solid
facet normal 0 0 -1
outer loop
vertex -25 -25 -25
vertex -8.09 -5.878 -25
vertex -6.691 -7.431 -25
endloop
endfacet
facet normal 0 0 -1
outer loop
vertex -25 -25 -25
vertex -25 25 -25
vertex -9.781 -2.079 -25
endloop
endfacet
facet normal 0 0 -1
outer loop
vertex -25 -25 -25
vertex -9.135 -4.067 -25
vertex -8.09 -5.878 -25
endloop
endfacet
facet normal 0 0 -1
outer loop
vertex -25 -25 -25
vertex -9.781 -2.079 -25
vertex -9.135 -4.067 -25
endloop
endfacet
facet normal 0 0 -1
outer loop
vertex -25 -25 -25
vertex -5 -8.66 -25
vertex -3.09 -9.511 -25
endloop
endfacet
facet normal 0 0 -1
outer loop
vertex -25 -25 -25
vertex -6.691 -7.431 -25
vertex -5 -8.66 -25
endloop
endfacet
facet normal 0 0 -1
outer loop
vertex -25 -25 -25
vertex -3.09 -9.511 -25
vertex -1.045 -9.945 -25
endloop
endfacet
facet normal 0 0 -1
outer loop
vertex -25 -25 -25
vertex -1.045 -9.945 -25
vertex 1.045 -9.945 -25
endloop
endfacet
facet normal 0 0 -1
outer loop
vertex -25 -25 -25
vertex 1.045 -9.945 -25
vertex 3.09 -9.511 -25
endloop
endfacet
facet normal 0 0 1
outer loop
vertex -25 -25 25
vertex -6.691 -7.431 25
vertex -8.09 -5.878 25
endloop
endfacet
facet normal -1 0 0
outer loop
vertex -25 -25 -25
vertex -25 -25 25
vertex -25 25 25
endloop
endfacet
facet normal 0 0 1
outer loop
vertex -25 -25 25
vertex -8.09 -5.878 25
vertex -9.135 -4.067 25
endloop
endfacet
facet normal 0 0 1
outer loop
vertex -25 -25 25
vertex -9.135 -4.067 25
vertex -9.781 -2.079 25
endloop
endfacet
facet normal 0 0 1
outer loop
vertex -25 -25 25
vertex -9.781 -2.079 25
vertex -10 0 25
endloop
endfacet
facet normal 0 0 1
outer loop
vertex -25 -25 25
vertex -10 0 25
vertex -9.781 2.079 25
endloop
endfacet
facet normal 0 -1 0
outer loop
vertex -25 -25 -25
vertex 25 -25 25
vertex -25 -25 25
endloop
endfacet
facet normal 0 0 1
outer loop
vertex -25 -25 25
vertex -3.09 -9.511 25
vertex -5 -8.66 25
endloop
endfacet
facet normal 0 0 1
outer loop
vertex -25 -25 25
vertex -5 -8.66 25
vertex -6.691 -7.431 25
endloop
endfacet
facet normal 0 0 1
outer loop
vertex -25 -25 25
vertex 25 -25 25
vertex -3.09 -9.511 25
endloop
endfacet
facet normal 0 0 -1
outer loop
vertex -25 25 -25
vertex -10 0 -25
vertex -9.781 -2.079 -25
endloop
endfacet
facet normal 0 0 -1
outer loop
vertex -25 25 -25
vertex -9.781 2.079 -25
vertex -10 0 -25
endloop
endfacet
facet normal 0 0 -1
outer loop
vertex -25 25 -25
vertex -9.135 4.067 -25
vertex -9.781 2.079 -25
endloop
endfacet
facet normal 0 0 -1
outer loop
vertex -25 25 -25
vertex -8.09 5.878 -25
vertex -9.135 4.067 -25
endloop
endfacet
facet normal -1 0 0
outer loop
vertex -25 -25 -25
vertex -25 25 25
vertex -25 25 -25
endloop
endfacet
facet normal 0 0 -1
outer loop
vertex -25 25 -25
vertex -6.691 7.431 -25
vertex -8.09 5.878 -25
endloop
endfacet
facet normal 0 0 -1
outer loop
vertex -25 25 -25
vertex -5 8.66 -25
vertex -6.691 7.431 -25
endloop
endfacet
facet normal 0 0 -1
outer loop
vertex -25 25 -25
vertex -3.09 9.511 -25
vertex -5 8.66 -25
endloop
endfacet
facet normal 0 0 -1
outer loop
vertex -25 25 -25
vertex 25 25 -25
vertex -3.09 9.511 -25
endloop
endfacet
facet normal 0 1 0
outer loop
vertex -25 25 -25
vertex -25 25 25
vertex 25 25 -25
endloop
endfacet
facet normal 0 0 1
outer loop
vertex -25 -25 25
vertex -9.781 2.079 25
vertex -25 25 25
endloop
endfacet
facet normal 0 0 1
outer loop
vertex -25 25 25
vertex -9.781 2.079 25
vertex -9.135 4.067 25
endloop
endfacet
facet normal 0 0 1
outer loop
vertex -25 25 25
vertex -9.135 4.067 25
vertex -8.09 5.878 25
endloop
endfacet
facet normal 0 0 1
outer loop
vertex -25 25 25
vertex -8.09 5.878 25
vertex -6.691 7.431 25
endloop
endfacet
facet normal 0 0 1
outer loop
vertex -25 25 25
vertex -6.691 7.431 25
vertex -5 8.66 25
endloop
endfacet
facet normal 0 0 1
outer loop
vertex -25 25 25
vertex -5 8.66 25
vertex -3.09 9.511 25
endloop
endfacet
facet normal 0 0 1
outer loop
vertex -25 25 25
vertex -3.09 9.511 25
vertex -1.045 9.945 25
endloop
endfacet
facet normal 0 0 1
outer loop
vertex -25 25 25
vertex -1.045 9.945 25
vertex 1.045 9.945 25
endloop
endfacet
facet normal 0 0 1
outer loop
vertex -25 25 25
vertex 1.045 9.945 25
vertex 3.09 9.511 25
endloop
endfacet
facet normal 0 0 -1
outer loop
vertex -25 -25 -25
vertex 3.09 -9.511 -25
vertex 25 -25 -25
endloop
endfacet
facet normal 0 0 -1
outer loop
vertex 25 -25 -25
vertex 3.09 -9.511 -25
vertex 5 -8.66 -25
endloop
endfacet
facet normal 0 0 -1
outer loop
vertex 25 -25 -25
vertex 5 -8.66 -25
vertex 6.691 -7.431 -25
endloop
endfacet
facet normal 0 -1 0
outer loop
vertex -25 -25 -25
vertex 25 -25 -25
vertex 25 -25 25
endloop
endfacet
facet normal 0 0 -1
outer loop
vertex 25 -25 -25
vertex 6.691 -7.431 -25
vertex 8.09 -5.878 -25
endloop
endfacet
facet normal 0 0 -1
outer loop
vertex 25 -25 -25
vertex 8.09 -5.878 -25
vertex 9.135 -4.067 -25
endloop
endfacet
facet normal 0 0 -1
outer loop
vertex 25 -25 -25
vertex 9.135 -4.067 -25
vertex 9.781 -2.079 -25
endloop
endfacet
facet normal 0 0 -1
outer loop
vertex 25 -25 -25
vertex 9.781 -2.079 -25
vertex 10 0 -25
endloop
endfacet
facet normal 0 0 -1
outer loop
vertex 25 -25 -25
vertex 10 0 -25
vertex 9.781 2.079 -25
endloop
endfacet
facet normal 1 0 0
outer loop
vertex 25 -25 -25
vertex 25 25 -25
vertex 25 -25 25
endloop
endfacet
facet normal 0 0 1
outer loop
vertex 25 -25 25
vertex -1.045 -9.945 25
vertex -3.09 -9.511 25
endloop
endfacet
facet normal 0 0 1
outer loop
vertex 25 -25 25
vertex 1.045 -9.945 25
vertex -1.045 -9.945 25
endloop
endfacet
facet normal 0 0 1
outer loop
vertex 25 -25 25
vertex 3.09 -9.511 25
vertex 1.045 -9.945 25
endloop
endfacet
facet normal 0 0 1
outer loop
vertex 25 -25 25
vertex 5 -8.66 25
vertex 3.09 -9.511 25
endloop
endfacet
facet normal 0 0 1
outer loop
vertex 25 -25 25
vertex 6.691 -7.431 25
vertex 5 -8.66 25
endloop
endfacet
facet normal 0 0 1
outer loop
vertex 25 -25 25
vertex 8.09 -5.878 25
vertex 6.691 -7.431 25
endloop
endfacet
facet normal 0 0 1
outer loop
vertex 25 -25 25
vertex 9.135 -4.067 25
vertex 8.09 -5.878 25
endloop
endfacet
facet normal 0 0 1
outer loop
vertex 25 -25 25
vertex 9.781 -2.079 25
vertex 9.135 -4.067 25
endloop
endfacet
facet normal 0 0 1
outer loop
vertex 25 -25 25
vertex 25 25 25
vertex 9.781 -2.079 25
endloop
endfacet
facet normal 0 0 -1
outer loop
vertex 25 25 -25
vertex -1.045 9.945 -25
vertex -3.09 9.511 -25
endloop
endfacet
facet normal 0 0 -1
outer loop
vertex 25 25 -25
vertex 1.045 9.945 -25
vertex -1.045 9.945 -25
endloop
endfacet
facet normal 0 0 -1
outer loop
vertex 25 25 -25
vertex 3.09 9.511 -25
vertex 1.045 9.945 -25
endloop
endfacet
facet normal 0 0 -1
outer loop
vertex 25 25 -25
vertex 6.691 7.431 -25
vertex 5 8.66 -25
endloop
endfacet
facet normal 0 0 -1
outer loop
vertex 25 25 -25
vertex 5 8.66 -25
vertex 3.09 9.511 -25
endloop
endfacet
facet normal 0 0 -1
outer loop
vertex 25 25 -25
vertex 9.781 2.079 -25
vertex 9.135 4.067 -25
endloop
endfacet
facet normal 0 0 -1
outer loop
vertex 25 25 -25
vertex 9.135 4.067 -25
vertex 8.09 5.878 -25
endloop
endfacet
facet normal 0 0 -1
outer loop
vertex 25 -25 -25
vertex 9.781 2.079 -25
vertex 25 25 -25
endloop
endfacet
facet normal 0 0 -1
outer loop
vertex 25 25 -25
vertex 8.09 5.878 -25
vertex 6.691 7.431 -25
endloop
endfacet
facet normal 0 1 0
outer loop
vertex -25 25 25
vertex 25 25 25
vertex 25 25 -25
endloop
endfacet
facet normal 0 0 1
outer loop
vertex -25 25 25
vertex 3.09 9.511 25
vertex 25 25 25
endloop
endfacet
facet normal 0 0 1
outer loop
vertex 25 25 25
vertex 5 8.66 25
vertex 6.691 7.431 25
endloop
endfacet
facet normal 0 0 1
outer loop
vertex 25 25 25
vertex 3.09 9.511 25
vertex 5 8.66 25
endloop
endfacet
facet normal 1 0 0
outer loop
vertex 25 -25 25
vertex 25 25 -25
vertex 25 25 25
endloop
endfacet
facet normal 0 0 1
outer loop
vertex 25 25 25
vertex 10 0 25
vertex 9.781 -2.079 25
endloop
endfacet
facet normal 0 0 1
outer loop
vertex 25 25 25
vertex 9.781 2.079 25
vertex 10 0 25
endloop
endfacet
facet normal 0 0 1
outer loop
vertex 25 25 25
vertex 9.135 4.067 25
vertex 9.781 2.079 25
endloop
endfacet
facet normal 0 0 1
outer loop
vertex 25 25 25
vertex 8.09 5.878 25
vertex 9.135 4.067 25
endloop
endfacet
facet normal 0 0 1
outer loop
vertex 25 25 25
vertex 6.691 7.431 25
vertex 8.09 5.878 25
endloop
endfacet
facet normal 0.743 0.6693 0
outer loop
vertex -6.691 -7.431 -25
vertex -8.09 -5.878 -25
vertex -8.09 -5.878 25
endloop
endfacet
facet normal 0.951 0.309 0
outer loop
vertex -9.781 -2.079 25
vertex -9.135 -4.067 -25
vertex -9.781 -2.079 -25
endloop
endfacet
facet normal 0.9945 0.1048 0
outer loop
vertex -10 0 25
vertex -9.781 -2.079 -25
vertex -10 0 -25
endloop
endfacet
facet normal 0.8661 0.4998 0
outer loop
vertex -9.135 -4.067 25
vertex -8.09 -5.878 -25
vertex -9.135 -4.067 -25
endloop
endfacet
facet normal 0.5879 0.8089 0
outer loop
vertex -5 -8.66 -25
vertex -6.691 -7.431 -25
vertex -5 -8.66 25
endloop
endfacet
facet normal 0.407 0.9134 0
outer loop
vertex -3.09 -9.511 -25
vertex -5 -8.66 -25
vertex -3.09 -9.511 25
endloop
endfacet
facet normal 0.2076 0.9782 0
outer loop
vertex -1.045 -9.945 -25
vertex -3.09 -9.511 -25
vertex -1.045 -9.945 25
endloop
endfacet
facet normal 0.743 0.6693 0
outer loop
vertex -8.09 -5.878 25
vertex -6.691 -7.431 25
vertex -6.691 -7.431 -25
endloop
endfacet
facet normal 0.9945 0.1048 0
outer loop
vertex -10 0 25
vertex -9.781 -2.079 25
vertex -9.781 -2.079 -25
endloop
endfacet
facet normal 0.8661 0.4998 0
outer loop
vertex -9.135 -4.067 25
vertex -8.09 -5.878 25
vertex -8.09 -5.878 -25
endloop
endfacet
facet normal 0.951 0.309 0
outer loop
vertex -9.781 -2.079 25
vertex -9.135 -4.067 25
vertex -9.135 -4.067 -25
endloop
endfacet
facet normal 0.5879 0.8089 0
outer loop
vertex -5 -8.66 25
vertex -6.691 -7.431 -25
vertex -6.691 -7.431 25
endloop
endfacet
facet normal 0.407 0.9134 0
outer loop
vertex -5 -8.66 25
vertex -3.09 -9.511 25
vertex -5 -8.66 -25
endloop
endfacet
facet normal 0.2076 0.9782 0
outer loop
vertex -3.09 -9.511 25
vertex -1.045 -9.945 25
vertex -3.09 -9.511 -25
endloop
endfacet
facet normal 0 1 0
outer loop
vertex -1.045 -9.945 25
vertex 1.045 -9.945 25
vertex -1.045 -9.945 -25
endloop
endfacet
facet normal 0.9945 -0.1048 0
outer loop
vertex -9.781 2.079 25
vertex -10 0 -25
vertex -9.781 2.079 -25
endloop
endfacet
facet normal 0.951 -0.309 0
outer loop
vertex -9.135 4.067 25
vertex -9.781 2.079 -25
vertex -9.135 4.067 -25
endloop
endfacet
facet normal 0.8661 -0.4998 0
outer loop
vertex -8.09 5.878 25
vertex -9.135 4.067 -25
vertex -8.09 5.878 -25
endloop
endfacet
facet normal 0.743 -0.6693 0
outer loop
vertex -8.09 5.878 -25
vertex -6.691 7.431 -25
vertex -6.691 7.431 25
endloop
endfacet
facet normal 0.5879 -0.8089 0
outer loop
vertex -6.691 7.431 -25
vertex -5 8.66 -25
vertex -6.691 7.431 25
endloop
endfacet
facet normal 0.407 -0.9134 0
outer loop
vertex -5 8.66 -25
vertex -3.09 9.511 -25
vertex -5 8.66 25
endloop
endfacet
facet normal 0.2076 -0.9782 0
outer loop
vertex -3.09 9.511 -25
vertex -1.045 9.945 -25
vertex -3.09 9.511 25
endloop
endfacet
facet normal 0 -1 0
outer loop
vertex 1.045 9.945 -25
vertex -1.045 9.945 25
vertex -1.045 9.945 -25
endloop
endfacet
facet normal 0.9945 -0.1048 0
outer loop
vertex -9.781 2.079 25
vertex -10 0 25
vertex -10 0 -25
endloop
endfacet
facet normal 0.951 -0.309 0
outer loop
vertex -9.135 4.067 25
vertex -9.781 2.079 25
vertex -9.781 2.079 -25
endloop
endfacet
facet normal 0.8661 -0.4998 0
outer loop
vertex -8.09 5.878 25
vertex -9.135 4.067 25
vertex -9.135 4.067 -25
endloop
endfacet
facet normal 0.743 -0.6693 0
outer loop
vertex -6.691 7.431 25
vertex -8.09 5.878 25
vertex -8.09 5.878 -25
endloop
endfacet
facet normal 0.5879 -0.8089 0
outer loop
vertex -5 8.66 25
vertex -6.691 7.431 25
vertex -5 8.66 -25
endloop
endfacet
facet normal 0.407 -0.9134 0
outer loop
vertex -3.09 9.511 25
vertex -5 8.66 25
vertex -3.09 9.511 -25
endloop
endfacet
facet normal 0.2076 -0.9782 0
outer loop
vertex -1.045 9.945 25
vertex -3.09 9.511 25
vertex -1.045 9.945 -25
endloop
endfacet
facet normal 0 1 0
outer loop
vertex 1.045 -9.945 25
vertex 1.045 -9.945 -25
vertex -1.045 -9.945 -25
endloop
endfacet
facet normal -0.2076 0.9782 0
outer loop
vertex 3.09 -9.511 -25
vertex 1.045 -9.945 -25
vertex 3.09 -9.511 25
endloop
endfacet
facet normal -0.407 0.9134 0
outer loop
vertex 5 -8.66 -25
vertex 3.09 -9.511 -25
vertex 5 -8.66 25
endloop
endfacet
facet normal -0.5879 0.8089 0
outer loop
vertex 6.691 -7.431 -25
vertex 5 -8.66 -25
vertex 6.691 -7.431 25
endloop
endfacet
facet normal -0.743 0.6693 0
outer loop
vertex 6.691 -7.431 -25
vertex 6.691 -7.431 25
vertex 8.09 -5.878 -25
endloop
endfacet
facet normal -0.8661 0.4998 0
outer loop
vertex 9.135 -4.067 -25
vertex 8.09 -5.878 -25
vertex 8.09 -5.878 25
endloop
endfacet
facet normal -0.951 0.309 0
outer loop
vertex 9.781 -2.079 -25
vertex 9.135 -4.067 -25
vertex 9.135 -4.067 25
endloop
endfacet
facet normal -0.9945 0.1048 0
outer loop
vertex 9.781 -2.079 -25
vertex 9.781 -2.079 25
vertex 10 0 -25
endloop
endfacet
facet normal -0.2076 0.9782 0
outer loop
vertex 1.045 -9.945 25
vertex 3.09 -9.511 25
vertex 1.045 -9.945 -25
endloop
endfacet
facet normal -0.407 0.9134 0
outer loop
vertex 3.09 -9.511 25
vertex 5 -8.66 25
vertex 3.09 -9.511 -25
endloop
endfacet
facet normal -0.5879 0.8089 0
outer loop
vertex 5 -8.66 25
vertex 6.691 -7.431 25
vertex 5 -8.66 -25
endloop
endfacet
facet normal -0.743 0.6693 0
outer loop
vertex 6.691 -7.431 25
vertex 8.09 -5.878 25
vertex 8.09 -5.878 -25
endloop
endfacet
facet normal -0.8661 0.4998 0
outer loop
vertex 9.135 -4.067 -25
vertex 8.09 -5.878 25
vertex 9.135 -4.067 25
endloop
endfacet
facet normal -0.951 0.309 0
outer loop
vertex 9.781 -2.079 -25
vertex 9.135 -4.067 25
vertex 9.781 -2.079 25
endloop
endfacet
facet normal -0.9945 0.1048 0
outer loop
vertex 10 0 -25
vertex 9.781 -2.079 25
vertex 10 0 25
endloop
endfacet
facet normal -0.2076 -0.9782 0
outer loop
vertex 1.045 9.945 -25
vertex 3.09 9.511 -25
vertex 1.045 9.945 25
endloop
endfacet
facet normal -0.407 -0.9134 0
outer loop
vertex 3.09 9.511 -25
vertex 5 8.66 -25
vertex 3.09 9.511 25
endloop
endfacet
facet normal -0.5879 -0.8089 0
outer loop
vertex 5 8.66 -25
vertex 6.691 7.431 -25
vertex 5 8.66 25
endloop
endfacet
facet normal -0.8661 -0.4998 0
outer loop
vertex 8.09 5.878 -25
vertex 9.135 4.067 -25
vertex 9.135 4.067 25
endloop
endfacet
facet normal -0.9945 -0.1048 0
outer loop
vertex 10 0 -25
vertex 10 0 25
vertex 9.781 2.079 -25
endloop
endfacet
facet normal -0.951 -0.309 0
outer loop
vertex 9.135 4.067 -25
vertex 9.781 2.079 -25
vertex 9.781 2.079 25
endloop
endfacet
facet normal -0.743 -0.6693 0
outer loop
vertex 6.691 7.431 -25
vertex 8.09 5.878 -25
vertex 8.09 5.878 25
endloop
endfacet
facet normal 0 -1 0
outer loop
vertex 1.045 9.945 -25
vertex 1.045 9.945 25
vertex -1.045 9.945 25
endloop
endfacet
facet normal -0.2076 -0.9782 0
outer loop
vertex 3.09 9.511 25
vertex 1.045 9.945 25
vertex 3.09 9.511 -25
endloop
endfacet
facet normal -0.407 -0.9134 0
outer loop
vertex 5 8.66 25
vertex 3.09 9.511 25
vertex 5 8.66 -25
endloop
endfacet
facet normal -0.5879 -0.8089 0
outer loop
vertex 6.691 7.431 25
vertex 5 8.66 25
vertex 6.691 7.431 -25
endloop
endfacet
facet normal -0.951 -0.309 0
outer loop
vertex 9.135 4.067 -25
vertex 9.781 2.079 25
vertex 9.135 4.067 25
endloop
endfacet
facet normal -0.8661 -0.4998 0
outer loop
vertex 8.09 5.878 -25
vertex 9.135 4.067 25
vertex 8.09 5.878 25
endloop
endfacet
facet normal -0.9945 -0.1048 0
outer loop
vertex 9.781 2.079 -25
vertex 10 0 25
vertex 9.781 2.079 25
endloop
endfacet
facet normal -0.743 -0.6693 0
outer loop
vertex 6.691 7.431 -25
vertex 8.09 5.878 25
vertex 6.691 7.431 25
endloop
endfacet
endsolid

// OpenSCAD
// 50mm角の立方体の中央に直径20mmの貫通穴をz軸方向に開ける

difference() {
    // 50mm角の立方体を中央に配置
    cube(size = 50, center = true);
    
    // 直径20mm、高さ51mm（立方体より少し長い）の円柱を中央に配置
    // 高さを長くすることで、ブーリアン演算が確実に行われるようにする
    cylinder(h = 51, d = 20, center = true);
}
